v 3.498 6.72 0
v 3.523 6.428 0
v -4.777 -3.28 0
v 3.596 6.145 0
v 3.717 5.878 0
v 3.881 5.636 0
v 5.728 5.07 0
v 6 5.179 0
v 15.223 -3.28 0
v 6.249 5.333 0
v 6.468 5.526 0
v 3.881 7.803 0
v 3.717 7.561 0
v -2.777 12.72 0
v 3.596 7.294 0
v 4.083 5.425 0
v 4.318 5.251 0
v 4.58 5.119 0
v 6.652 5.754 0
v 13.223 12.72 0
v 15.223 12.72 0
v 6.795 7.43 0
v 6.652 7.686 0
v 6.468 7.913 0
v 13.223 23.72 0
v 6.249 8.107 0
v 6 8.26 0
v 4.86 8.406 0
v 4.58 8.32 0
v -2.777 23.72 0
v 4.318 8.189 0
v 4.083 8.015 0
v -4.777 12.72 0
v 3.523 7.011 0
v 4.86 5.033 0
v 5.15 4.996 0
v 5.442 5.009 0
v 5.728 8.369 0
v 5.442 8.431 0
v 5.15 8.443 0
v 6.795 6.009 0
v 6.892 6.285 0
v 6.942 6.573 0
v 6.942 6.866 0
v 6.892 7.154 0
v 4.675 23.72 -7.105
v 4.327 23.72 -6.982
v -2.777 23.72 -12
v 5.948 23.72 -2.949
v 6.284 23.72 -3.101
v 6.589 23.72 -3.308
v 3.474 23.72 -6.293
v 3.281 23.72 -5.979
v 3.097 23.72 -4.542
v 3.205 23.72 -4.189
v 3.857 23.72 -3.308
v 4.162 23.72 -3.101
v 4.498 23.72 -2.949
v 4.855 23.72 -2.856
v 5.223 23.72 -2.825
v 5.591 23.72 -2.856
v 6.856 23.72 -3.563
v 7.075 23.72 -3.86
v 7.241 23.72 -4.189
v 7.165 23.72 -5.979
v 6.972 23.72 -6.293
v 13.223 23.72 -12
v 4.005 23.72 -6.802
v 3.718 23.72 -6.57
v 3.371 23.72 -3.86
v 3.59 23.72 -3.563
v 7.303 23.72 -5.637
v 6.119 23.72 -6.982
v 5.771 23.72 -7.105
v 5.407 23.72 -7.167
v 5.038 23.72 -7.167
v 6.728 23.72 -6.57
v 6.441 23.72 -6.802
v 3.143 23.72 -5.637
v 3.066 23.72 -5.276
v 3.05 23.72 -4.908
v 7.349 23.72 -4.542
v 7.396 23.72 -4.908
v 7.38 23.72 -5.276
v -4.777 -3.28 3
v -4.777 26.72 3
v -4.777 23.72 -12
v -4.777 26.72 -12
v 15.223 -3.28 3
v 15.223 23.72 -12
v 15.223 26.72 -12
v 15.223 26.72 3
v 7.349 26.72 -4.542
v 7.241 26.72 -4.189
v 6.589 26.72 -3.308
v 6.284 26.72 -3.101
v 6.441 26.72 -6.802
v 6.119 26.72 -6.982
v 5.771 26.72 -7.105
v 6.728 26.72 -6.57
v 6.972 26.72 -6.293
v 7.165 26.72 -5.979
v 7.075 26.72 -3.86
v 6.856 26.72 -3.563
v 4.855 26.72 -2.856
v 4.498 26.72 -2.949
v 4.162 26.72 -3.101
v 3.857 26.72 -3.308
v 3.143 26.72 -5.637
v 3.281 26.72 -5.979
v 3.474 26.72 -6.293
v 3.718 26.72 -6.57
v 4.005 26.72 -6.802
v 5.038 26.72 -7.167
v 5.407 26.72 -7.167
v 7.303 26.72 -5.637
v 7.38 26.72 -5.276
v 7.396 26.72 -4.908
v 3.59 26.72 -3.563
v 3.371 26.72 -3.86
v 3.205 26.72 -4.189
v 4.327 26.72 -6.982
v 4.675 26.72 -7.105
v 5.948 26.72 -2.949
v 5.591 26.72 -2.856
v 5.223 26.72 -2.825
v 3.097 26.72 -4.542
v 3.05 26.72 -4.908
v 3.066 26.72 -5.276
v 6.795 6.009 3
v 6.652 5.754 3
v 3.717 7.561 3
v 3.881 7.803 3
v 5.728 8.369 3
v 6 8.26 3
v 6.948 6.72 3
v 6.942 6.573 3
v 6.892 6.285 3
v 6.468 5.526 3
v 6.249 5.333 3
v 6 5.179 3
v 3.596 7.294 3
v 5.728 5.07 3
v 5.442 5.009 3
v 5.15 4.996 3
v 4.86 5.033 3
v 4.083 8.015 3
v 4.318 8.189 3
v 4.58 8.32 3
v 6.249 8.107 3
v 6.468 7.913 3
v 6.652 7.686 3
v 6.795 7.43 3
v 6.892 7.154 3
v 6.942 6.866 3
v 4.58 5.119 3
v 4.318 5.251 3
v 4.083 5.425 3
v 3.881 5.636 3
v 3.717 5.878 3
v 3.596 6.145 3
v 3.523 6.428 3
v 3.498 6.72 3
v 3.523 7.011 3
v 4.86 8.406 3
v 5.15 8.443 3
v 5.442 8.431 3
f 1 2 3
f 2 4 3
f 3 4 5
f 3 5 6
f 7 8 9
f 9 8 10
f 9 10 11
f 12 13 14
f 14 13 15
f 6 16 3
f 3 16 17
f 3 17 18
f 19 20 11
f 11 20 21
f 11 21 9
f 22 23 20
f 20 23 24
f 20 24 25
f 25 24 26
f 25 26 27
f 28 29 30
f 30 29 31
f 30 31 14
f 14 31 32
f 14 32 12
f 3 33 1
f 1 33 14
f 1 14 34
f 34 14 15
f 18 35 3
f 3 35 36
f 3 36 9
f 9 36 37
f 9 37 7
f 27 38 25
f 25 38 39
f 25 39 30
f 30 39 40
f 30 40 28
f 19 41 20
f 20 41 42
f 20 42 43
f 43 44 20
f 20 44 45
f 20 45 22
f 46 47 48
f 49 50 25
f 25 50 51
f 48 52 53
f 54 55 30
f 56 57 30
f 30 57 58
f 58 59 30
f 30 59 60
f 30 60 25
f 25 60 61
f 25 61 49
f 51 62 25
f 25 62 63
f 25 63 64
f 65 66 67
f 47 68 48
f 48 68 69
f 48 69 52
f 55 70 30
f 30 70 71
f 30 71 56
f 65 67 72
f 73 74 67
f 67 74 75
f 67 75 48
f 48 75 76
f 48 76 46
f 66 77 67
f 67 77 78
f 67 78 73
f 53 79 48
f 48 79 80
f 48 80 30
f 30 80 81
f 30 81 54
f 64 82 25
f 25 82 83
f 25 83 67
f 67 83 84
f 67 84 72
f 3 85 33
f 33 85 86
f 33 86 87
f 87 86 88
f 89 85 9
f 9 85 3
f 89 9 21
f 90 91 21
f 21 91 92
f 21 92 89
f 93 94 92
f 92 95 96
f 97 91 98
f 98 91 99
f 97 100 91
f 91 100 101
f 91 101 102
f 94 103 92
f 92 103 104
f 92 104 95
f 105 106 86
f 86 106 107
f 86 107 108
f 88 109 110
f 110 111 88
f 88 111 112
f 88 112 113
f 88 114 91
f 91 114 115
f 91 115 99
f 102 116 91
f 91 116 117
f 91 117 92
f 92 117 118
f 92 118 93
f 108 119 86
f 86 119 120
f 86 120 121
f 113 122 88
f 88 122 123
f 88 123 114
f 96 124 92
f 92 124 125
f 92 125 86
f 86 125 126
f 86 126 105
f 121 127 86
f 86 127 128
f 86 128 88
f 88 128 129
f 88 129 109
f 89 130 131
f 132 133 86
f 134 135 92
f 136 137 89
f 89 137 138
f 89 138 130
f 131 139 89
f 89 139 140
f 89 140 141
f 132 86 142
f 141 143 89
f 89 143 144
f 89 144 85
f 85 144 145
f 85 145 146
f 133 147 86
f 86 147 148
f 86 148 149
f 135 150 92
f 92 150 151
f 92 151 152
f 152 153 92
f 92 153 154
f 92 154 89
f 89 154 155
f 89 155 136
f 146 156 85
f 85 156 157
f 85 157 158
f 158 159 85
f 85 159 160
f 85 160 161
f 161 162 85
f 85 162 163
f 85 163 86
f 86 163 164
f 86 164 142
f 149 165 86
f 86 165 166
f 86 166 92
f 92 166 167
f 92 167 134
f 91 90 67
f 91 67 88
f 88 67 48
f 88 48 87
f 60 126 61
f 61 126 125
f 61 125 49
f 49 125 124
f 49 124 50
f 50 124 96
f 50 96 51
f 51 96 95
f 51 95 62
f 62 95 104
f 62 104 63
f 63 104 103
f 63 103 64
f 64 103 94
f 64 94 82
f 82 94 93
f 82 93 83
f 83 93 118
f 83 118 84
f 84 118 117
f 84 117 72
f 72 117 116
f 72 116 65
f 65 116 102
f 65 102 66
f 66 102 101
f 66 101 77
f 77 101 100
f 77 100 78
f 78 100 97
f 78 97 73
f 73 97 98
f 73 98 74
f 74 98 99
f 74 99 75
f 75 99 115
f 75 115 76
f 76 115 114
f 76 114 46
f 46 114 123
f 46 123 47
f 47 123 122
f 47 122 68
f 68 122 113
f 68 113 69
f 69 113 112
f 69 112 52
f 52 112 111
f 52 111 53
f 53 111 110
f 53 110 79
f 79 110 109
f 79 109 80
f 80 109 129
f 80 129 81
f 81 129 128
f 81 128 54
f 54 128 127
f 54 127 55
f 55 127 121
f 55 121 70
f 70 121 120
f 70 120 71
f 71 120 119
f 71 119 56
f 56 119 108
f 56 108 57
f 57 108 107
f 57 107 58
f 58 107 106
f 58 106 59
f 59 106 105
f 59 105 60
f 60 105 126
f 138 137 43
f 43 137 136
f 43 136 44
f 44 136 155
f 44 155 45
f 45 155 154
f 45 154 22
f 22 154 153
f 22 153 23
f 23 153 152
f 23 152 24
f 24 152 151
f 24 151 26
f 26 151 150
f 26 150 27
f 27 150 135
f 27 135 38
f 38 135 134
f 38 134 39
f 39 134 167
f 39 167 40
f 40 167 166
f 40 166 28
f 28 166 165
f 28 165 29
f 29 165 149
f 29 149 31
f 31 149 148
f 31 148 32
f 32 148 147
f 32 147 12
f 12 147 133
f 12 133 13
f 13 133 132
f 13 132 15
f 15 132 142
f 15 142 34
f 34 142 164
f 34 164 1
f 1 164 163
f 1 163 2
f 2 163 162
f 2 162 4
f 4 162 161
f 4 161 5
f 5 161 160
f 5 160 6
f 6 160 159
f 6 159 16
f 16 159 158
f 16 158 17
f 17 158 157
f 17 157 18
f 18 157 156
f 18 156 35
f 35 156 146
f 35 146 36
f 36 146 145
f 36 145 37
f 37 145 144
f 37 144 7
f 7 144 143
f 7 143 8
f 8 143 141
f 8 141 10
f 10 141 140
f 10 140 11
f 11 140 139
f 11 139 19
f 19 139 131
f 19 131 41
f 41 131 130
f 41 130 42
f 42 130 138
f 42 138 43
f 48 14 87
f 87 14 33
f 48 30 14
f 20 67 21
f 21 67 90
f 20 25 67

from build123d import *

# Parameters (mm, degrees)
SKETCH1_W           = 20
SKETCH1_H           = 30
BOSS_EXTRUDE1_DEPTH = 3
SKETCH2_W           = 20
SKETCH2_H           = 3
BOSS_EXTRUDE2_DEPTH = 12
SKETCH3_R           = 2.175
CUT_EXTRUDE1_DEPTH  = 12
SKETCH5_R           = 1.725
CUT_EXTRUDE2_DEPTH  = 12
BOSS_EXTRUDE3_DEPTH = 2


with BuildPart() as part:
    # Sketch1 → Boss-Extrude1 (new body)
    with BuildSketch(Plane.XY):
        with Locations((5.222929936, 11.719745223)):
            Rectangle(SKETCH1_W, SKETCH1_H)
    extrude(amount=BOSS_EXTRUDE1_DEPTH)

    # Sketch2 → Boss-Extrude2 (add)
    with BuildSketch(Plane(origin=(0, 0, 0), x_dir=(-1, 0, 0), z_dir=(0, 0, -1))):
        with Locations((-5.222929936, 25.219745223)):
            Rectangle(SKETCH2_W, SKETCH2_H)
    extrude(amount=BOSS_EXTRUDE2_DEPTH)

    # Sketch3 → Cut-Extrude1 (cut)
    with BuildSketch(Plane(origin=(0, 26.719745223, 0), x_dir=(1, 0, 0), z_dir=(0, 1, 0))):
        with Locations(Location((5.222929936, 5, 0), (0, 0, 270))):
            Circle(SKETCH3_R)
    extrude(amount=-CUT_EXTRUDE1_DEPTH, mode=Mode.SUBTRACT)

    # Sketch5 → Cut-Extrude2 (cut)
    with BuildSketch(Plane(origin=(0, 0, 0), x_dir=(-1, 0, 0), z_dir=(0, 0, -1))):
        with Locations((-5.222929936, 6.719745223)):
            Circle(SKETCH5_R)
    extrude(amount=-CUT_EXTRUDE2_DEPTH, mode=Mode.SUBTRACT)

    # Sketch6 → Boss-Extrude3 (add)
    with BuildSketch(Plane.ZY.offset(4.777070064)):
        Polygon((-12, 23.719745223), (0, 23.719745223), (0, 12.719745223), align=None)
    boss_extrude3 = extrude(amount=-BOSS_EXTRUDE3_DEPTH)

    # Mirror1: Boss-Extrude3 across plane
    add(boss_extrude3.mirror(Plane.ZY.offset(-5.222929936)))


solid = part.part
